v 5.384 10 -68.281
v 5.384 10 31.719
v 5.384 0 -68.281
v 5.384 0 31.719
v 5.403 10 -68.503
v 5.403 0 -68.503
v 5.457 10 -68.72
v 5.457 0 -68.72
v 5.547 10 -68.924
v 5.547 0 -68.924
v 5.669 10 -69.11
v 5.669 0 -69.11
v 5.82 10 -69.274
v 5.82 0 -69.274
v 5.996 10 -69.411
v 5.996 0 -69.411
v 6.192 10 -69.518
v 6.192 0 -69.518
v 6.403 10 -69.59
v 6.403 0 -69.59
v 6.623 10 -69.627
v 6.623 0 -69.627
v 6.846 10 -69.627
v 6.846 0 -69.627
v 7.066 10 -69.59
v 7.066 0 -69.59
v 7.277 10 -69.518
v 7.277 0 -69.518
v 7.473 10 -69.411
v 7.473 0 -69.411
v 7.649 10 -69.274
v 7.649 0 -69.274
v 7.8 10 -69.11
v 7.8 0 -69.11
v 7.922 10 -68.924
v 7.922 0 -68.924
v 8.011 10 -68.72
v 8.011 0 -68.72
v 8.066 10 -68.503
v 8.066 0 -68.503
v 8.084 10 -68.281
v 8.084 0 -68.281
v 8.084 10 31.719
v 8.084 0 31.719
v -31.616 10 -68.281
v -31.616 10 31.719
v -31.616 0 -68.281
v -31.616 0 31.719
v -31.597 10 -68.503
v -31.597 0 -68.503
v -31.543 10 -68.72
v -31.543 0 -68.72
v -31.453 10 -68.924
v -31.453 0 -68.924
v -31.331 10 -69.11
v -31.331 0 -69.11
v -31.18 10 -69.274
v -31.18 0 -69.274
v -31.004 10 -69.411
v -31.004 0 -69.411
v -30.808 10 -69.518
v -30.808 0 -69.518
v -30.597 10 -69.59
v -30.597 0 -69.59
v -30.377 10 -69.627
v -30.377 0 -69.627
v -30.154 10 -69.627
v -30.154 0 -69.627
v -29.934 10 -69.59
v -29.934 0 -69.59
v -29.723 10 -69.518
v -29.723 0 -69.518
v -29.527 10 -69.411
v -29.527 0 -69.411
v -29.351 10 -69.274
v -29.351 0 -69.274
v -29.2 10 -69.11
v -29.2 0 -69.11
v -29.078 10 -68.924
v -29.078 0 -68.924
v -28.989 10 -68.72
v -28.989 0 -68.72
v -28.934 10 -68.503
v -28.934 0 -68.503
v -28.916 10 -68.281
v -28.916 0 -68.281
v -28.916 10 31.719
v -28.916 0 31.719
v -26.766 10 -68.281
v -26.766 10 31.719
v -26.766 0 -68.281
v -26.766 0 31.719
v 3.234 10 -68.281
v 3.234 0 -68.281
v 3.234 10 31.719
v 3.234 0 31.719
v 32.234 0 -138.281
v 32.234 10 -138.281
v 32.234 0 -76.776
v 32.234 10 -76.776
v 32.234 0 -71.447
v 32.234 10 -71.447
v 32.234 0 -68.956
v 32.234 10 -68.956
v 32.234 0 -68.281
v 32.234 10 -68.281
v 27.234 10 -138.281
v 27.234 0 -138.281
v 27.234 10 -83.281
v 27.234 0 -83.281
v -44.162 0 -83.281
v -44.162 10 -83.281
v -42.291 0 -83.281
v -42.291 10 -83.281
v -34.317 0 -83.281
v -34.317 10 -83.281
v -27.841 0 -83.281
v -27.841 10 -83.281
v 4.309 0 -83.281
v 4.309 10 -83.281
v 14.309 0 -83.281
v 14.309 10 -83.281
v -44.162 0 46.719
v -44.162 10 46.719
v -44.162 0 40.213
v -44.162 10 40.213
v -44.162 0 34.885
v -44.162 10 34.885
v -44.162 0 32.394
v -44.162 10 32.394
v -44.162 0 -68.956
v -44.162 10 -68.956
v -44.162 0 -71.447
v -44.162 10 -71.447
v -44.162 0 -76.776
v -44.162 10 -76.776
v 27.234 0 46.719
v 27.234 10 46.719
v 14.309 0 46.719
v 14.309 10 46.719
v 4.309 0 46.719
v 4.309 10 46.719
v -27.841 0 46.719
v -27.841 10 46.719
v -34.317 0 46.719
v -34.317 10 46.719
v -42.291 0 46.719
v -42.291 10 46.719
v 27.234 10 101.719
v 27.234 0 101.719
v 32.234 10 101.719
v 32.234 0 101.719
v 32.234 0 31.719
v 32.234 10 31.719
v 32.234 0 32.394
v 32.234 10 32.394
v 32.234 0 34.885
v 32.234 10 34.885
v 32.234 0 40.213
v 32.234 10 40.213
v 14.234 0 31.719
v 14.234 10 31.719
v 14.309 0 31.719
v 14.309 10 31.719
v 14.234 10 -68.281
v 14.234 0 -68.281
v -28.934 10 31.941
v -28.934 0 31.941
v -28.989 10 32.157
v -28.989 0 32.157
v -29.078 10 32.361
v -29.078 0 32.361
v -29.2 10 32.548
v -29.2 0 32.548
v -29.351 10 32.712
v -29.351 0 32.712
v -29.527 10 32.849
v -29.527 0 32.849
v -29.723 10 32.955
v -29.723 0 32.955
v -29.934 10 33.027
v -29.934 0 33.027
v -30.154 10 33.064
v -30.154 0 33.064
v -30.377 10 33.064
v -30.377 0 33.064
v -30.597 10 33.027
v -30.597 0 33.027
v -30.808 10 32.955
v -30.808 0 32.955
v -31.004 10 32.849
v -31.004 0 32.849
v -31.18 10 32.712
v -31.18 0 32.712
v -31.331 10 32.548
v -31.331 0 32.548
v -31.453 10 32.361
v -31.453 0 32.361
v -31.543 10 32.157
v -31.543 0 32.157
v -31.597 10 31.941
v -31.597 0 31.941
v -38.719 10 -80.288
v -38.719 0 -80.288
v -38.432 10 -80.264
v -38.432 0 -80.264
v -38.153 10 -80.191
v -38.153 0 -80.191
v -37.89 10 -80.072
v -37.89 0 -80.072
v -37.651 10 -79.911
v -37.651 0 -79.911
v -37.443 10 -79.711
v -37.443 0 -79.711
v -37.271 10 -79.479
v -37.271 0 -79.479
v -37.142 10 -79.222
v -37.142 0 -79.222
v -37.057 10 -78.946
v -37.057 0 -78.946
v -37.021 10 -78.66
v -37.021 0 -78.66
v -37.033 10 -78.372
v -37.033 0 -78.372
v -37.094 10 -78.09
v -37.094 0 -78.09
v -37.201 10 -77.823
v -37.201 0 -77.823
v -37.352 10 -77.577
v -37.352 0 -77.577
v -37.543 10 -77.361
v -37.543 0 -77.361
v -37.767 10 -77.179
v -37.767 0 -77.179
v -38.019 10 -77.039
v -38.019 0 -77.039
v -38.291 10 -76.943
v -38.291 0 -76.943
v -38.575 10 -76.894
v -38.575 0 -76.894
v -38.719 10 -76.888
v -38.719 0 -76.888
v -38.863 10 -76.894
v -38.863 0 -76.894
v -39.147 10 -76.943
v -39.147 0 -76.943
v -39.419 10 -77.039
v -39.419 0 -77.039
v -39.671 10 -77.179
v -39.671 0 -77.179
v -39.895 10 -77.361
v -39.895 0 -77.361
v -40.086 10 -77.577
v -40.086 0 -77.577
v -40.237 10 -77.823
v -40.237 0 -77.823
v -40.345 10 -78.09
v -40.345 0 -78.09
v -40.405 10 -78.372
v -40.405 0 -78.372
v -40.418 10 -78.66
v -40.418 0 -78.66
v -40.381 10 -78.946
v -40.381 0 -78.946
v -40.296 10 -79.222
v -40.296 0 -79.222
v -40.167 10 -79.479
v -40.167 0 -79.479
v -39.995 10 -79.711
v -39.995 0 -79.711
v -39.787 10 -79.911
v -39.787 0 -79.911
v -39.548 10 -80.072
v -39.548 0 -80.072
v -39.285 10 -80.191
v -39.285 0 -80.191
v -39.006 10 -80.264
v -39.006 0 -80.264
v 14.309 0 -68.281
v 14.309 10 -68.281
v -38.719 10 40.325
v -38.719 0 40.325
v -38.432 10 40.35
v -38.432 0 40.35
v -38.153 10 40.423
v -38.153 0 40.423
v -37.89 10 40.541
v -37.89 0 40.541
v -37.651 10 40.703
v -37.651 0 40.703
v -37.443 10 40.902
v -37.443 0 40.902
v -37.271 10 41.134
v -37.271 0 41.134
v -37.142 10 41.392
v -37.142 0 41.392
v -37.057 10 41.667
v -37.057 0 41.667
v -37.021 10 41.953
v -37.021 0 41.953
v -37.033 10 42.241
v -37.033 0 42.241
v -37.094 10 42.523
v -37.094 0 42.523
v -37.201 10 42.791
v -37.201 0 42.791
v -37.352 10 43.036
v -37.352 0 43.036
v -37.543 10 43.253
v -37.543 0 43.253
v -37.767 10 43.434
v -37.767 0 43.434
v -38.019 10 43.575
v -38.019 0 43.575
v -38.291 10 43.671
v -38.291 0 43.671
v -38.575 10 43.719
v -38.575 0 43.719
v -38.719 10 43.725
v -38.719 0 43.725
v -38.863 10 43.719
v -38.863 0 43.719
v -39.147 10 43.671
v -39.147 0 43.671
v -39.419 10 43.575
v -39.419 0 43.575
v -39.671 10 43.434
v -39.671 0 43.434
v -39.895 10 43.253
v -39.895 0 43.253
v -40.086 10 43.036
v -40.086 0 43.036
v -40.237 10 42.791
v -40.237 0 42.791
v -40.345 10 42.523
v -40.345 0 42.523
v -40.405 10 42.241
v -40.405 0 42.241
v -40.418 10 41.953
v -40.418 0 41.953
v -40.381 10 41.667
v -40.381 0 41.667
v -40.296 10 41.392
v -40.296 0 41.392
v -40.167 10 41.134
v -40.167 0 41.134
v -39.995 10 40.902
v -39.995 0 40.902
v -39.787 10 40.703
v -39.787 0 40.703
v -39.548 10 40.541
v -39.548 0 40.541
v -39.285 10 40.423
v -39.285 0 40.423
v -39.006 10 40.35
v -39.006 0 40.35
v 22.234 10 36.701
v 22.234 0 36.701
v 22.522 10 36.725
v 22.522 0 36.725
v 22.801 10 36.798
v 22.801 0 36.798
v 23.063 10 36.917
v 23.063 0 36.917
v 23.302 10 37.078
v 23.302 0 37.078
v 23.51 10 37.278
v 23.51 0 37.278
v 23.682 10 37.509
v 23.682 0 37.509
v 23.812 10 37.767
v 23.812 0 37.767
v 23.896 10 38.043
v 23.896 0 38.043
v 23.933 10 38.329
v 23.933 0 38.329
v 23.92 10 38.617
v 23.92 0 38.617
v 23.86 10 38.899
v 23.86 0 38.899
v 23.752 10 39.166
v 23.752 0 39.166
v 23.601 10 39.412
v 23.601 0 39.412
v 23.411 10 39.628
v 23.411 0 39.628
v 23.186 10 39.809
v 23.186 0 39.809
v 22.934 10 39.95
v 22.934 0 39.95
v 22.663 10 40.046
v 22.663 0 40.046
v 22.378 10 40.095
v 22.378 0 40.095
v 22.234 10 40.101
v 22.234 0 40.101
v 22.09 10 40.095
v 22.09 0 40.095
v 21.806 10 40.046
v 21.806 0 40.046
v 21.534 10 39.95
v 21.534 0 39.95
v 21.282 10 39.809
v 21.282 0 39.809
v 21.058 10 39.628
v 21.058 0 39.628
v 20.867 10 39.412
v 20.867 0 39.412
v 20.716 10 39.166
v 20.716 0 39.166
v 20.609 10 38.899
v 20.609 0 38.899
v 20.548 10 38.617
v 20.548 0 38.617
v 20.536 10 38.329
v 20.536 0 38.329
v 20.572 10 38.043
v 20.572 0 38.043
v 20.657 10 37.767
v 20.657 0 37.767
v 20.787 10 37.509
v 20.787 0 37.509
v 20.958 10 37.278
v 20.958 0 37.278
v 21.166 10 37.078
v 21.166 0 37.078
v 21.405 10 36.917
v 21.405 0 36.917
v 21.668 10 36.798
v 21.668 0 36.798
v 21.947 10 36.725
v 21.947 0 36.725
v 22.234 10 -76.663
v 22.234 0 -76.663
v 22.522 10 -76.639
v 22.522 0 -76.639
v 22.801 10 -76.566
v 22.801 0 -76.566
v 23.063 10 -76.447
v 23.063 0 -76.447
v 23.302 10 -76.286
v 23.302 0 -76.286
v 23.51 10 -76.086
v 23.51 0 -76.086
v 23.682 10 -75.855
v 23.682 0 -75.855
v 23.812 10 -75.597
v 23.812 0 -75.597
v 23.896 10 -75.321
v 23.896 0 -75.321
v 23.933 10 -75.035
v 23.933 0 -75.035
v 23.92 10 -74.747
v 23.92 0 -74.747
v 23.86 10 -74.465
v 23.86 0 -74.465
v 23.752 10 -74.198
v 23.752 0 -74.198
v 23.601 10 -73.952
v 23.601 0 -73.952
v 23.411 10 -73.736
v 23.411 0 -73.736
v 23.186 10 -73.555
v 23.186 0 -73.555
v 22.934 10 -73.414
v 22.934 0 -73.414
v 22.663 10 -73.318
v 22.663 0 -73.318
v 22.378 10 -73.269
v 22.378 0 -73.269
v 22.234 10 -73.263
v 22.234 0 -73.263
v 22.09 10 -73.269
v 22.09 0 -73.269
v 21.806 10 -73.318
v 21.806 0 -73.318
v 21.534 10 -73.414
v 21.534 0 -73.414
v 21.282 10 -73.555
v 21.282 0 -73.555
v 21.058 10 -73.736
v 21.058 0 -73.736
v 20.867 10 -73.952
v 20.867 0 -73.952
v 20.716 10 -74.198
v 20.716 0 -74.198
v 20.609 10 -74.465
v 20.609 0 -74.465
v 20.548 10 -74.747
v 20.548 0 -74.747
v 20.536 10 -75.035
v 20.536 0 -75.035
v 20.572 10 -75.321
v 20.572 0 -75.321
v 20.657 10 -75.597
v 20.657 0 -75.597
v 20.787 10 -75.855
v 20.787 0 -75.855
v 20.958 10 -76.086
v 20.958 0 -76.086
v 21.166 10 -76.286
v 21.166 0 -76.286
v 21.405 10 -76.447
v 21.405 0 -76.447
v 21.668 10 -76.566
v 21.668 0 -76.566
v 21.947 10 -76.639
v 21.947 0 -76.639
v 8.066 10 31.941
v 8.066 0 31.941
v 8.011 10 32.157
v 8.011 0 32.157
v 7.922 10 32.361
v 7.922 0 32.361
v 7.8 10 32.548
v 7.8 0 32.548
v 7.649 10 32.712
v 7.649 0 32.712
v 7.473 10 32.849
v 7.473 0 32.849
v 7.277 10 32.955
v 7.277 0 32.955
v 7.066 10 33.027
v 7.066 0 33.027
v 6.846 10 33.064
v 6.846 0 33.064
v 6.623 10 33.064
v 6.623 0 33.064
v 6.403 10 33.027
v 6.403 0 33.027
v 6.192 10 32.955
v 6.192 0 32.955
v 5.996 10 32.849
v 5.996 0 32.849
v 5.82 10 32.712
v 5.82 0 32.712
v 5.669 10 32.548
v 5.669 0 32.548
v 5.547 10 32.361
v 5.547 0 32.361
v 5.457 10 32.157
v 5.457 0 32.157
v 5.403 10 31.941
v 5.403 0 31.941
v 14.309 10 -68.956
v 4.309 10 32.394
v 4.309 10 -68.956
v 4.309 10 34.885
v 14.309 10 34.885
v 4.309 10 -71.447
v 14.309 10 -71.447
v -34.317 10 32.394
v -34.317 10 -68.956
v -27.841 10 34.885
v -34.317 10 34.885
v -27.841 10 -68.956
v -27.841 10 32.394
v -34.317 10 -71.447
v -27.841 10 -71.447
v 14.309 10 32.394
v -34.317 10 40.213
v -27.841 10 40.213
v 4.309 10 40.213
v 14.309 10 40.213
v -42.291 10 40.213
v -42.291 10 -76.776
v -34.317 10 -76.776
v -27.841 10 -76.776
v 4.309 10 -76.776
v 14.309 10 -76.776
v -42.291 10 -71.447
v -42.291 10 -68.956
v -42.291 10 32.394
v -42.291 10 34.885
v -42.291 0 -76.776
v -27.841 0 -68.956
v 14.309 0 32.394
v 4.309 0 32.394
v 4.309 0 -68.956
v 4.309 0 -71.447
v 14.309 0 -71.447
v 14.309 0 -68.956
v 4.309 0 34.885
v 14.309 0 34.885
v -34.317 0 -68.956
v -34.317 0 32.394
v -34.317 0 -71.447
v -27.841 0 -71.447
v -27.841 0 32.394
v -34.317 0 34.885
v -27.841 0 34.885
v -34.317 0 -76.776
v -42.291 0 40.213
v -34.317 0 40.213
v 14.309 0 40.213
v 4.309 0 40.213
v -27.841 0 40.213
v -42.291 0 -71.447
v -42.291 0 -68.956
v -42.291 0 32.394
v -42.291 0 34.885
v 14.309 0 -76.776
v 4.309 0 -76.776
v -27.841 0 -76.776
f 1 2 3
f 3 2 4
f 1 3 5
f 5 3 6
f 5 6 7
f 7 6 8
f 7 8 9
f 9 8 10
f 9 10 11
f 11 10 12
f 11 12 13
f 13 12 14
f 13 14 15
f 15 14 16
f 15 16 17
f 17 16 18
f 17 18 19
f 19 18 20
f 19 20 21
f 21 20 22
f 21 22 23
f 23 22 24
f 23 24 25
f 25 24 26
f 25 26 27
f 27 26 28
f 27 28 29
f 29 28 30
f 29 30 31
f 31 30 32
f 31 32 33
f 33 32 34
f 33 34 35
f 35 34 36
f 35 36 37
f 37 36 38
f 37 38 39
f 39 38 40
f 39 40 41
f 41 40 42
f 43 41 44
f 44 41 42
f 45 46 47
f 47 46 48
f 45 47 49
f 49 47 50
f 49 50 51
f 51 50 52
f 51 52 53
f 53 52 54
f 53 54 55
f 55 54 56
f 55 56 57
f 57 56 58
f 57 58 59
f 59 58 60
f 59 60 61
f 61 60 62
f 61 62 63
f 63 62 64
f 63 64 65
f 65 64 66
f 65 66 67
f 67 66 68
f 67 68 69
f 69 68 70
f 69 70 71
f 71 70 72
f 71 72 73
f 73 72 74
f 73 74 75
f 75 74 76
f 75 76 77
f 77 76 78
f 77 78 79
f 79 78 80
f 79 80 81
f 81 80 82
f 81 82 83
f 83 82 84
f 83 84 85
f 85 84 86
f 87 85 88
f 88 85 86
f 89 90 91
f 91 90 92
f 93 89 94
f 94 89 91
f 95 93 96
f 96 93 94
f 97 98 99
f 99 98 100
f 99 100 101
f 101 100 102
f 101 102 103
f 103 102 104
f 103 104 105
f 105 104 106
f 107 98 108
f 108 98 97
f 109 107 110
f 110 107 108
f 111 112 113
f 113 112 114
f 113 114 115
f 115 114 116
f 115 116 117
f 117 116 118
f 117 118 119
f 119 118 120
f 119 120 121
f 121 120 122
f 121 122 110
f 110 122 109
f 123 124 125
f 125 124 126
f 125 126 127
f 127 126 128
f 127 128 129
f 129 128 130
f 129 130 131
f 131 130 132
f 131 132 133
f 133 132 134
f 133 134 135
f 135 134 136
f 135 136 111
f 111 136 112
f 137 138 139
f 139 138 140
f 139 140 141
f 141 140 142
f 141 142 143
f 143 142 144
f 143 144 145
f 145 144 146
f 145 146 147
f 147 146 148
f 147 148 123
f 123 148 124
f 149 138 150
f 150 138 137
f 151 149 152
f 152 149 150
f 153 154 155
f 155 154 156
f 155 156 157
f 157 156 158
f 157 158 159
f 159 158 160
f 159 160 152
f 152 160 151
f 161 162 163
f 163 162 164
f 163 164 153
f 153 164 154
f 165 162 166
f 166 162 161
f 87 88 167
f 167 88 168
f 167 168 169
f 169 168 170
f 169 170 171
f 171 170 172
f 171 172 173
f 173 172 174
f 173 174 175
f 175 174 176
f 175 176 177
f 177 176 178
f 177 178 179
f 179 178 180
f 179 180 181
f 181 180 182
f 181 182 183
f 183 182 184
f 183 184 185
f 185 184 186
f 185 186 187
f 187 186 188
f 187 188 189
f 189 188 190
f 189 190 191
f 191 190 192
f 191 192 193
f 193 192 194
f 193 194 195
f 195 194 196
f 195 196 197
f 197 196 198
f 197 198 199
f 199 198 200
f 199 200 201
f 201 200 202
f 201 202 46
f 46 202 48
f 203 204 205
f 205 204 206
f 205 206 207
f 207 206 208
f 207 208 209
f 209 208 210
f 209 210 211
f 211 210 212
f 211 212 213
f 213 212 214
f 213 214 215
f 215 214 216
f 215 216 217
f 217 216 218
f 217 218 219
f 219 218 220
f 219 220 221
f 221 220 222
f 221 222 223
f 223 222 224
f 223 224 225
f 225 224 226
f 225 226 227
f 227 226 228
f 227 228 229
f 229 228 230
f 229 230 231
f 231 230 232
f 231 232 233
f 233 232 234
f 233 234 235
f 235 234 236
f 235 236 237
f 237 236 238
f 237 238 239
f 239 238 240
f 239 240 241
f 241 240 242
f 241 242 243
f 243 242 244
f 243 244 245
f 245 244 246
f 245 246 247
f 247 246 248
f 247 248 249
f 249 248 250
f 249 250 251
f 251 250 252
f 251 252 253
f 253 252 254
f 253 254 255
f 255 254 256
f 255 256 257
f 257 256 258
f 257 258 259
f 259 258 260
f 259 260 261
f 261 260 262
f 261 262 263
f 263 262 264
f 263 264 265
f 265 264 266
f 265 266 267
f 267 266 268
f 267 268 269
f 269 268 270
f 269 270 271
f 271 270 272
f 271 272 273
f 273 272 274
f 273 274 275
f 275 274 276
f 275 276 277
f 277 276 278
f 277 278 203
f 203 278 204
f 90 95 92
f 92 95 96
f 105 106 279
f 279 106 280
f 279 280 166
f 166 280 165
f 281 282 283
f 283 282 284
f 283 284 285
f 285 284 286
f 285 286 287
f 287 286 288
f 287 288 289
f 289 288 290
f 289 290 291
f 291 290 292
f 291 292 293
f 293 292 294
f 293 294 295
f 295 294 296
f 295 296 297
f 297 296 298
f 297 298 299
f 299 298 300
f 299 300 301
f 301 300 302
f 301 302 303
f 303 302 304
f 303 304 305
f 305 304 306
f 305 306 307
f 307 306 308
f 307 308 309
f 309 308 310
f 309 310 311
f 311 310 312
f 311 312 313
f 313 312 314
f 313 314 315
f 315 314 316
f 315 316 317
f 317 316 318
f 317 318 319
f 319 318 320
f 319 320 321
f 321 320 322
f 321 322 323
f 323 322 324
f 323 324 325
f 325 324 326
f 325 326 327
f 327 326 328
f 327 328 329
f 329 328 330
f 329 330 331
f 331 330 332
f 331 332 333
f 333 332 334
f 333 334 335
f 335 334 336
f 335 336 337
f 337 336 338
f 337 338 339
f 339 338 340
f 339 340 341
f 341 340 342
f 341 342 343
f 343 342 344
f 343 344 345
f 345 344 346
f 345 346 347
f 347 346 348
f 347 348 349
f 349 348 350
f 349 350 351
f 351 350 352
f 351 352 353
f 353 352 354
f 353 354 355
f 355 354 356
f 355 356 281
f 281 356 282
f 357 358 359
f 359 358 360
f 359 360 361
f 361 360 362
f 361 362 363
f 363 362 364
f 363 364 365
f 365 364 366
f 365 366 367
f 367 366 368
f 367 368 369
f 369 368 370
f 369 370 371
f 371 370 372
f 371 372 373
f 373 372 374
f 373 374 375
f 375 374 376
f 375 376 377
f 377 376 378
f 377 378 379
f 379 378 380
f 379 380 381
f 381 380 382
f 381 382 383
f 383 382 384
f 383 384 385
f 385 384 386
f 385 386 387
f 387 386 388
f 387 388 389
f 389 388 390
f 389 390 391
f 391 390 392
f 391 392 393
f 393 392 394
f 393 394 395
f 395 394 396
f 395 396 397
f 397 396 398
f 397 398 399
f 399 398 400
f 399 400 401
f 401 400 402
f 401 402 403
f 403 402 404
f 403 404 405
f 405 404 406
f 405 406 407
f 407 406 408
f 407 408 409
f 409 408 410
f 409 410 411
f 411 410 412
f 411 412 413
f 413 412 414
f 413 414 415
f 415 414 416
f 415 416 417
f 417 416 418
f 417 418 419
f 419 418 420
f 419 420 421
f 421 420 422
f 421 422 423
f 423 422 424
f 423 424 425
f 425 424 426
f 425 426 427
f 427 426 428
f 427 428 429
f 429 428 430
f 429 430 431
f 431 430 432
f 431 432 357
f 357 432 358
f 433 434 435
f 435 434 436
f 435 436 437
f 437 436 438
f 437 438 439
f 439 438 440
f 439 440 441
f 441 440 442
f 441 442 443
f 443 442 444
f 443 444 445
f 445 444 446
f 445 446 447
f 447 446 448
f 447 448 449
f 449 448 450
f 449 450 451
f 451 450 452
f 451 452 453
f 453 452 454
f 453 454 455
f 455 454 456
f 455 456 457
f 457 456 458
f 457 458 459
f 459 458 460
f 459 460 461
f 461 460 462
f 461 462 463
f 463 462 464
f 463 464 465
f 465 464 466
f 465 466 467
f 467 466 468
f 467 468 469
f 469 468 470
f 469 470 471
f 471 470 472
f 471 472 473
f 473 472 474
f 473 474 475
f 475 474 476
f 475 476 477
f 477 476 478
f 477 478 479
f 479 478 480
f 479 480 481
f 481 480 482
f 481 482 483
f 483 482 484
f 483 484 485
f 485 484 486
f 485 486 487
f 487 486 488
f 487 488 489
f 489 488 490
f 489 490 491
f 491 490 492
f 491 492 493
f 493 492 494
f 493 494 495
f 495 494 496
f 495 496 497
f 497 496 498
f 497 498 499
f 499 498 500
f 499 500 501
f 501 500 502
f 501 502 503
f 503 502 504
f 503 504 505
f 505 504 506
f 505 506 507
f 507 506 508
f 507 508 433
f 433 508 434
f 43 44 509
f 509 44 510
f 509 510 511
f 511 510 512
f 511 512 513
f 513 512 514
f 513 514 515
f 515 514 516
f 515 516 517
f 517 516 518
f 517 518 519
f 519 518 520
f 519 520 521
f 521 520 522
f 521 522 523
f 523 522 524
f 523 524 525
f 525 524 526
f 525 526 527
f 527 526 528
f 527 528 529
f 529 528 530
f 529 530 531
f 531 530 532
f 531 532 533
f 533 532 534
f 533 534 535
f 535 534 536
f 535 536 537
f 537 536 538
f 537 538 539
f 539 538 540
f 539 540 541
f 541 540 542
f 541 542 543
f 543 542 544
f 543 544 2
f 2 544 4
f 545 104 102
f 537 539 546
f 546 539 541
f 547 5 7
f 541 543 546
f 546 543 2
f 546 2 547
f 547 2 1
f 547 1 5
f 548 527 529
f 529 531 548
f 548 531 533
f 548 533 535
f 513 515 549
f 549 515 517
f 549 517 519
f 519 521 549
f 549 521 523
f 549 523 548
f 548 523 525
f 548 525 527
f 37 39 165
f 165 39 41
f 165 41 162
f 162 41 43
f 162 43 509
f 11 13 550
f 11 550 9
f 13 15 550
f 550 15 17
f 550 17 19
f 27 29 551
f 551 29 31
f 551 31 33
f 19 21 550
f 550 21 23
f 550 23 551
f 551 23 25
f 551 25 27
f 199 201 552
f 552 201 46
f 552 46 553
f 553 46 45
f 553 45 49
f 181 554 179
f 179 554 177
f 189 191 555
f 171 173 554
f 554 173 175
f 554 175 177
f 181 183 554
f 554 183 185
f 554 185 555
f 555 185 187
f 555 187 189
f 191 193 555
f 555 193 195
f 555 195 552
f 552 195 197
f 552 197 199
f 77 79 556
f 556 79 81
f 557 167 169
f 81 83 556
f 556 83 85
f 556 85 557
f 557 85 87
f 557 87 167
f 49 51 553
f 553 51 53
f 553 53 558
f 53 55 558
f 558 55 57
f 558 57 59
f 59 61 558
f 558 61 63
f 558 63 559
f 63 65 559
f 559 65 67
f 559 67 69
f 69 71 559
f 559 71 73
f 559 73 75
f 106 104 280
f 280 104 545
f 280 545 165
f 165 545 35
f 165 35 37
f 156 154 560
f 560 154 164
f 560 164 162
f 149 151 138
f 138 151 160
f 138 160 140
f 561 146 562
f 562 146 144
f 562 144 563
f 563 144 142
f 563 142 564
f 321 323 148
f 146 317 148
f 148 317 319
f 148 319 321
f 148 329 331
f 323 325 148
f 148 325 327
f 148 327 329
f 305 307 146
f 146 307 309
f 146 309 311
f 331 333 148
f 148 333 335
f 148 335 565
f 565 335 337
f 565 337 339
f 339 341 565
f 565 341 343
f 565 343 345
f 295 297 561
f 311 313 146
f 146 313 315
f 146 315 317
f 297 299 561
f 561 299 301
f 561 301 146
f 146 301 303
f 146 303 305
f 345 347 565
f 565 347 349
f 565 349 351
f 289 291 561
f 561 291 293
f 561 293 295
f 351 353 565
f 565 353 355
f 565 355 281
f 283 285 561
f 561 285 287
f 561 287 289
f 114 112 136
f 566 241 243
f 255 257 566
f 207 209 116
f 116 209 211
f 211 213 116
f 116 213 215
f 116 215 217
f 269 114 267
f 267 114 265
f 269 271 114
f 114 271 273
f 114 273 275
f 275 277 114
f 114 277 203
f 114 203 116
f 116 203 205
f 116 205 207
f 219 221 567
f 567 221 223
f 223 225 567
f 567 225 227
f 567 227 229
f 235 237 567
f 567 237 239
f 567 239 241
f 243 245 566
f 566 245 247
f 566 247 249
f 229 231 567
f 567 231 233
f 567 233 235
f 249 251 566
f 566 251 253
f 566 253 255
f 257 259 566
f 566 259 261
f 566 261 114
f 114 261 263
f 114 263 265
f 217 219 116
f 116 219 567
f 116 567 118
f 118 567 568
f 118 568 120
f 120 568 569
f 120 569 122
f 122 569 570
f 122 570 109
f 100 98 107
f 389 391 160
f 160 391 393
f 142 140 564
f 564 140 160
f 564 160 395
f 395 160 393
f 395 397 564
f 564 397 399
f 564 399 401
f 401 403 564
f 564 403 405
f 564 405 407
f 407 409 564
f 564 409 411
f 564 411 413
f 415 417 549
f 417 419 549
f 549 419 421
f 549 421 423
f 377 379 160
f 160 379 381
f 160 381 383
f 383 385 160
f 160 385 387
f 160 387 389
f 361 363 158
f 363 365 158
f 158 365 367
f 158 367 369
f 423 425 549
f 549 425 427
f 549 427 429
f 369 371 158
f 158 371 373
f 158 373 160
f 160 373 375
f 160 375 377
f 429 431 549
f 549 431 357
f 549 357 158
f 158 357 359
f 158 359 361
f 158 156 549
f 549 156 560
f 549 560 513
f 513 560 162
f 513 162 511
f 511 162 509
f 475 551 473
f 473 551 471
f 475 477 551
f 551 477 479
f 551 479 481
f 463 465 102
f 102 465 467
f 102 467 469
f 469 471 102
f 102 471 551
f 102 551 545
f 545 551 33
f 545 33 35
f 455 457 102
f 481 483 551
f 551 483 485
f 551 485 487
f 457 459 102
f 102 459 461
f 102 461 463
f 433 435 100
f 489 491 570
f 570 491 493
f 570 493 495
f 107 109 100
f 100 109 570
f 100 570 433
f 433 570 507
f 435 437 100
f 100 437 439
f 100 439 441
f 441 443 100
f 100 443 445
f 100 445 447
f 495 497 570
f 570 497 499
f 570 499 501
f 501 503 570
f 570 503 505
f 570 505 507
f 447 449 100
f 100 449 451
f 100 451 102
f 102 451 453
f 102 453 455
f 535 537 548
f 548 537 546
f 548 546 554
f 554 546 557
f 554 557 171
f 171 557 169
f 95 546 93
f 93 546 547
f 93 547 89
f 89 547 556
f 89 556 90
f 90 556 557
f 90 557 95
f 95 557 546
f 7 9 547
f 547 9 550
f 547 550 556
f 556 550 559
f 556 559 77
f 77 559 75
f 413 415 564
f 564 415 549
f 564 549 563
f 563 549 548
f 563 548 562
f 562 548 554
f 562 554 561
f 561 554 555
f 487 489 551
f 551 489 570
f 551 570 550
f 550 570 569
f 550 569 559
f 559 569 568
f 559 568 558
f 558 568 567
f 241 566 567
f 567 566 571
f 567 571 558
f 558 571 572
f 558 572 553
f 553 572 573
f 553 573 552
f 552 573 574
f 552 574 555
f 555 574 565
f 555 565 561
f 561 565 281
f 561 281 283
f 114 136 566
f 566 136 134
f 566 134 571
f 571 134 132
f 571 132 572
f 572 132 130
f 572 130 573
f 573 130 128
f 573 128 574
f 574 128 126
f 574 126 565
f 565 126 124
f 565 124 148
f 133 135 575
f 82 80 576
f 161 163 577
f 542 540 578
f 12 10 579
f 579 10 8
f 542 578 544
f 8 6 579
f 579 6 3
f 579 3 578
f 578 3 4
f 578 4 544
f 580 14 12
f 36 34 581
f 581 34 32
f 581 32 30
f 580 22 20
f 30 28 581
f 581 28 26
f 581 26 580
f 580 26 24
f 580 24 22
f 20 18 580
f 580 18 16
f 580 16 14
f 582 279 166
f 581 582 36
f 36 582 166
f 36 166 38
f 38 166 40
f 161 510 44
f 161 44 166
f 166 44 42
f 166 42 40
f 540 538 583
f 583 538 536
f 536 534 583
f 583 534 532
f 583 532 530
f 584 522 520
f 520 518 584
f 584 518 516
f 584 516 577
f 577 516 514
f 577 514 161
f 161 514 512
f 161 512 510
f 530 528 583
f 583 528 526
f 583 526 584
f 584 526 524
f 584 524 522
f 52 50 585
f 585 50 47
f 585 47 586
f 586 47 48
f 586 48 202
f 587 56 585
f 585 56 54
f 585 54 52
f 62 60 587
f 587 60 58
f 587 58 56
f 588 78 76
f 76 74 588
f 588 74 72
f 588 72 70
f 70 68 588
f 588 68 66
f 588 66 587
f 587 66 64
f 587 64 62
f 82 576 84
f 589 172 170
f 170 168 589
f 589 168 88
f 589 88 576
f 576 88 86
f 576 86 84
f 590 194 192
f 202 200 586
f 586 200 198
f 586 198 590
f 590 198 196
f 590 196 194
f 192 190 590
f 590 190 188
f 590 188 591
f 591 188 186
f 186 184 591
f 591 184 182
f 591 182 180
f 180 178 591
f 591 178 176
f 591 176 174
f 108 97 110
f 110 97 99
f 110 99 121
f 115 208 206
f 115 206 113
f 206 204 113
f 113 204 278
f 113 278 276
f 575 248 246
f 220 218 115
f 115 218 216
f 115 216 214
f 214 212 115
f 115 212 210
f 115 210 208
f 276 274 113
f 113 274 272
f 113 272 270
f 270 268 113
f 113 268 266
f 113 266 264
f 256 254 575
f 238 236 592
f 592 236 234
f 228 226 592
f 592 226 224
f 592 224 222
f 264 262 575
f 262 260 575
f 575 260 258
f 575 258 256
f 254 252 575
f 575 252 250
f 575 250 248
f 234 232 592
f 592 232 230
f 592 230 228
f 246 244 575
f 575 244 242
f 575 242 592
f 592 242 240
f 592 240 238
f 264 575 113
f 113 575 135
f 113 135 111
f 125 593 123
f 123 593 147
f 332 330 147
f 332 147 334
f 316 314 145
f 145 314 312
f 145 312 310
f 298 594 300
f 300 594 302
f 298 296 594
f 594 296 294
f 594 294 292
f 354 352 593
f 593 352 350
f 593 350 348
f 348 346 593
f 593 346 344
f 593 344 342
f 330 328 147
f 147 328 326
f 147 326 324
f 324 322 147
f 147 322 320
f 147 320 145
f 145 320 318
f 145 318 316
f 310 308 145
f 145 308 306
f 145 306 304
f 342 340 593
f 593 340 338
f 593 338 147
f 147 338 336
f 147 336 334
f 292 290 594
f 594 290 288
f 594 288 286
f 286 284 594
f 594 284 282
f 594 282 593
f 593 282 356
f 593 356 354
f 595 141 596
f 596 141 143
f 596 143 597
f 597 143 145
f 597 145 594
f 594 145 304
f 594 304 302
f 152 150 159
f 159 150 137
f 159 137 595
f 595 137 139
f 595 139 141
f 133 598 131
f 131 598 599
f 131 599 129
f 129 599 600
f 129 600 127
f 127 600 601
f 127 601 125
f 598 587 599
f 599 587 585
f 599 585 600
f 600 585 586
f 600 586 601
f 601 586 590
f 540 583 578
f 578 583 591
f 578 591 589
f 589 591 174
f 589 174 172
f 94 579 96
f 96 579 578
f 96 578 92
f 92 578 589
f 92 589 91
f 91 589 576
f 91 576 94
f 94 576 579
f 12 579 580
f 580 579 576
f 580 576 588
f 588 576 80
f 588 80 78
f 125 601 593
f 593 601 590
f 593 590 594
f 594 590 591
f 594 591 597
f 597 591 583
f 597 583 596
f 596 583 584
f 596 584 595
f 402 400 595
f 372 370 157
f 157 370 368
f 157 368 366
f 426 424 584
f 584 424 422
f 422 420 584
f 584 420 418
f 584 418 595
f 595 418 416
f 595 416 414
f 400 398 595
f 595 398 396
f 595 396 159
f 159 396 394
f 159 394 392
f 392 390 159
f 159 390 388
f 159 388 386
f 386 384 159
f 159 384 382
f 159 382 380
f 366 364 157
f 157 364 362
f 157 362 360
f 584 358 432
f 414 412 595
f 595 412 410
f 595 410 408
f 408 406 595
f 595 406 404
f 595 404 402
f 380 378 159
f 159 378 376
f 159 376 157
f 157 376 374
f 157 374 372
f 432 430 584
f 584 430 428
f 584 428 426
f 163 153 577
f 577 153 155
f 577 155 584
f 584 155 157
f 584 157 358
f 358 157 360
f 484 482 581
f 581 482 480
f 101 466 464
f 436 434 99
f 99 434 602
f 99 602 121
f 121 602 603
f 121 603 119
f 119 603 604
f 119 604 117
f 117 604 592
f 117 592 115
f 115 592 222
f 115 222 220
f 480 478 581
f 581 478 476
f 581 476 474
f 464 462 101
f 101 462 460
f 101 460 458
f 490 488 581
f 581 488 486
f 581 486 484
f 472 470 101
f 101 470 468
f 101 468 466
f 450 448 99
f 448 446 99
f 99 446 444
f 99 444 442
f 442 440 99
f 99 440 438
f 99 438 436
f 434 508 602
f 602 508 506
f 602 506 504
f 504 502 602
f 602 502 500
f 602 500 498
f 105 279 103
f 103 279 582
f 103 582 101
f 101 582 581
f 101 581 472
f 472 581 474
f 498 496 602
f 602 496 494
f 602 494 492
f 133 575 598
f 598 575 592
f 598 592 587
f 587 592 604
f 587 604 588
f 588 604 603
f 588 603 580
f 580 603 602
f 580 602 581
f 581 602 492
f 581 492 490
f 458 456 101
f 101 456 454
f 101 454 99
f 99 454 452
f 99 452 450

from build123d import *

# Parameters (mm, degrees)
SKETCH1_R           = 1.7
SKETCH1_W           = 30
SKETCH1_H           = 100
BOSS_EXTRUDE1_DEPTH = 10


with BuildPart() as part:
    # Sketch1 → Boss-Extrude1 (new body)
    with BuildSketch(Plane(origin=(0, 0, 0), x_dir=(1, 0, 0), z_dir=(0, 1, 0))):
        Polygon((32.234241277, 138.28125), (32.234241277, 68.28125), (14.234241277, 68.28125), (14.234241277, -31.71875), (32.234241277, -31.71875), (32.234241277, -101.71875), (27.234241277, -101.71875), (27.234241277, -46.71875), (-30.265758723, -46.71875), (-44.162144835, -46.71875), (-44.162144835, 83.28125), (-30.265758723, 83.28125), (27.234241277, 83.28125), (27.234241277, 138.28125), align=None)
        with Locations((22.234241277, 74.963265867)):
            Circle(SKETCH1_R, mode=Mode.SUBTRACT)
        with Locations((22.234241277, -38.400765867)):
            Circle(SKETCH1_R, mode=Mode.SUBTRACT)
        with Locations((-38.719051078, -42.025453022)):
            Circle(SKETCH1_R, mode=Mode.SUBTRACT)
        with Locations((-38.719051078, 78.587953022)):
            Circle(SKETCH1_R, mode=Mode.SUBTRACT)
        with Locations((-11.765758723, 18.28125)):
            Rectangle(SKETCH1_W, SKETCH1_H, mode=Mode.SUBTRACT)
        with BuildLine():
            Line((-31.615758723, 18.28125), (-31.615758723, 68.28125))
            ThreePointArc((-31.615758723, 68.28125), (-30.265758723, 69.63125), (-28.915758723, 68.28125))
            Line((-28.915758723, 68.28125), (-28.915758723, 18.28125))
            Line((-28.915758723, 18.28125), (-28.915758723, -31.71875))
            ThreePointArc((-28.915758723, -31.71875), (-30.265758723, -33.06875), (-31.615758723, -31.71875))
            Line((-31.615758723, -31.71875), (-31.615758723, 18.28125))
        make_face(mode=Mode.SUBTRACT)
        with BuildLine():
            Line((5.384241277, 18.28125), (5.384241277, 68.28125))
            ThreePointArc((5.384241277, 68.28125), (6.734241277, 69.63125), (8.084241277, 68.28125))
            Line((8.084241277, 68.28125), (8.084241277, 18.28125))
            Line((8.084241277, 18.28125), (8.084241277, -31.71875))
            ThreePointArc((8.084241277, -31.71875), (6.734241277, -33.06875), (5.384241277, -31.71875))
            Line((5.384241277, -31.71875), (5.384241277, 18.28125))
        make_face(mode=Mode.SUBTRACT)
    extrude(amount=BOSS_EXTRUDE1_DEPTH)


solid = part.part
